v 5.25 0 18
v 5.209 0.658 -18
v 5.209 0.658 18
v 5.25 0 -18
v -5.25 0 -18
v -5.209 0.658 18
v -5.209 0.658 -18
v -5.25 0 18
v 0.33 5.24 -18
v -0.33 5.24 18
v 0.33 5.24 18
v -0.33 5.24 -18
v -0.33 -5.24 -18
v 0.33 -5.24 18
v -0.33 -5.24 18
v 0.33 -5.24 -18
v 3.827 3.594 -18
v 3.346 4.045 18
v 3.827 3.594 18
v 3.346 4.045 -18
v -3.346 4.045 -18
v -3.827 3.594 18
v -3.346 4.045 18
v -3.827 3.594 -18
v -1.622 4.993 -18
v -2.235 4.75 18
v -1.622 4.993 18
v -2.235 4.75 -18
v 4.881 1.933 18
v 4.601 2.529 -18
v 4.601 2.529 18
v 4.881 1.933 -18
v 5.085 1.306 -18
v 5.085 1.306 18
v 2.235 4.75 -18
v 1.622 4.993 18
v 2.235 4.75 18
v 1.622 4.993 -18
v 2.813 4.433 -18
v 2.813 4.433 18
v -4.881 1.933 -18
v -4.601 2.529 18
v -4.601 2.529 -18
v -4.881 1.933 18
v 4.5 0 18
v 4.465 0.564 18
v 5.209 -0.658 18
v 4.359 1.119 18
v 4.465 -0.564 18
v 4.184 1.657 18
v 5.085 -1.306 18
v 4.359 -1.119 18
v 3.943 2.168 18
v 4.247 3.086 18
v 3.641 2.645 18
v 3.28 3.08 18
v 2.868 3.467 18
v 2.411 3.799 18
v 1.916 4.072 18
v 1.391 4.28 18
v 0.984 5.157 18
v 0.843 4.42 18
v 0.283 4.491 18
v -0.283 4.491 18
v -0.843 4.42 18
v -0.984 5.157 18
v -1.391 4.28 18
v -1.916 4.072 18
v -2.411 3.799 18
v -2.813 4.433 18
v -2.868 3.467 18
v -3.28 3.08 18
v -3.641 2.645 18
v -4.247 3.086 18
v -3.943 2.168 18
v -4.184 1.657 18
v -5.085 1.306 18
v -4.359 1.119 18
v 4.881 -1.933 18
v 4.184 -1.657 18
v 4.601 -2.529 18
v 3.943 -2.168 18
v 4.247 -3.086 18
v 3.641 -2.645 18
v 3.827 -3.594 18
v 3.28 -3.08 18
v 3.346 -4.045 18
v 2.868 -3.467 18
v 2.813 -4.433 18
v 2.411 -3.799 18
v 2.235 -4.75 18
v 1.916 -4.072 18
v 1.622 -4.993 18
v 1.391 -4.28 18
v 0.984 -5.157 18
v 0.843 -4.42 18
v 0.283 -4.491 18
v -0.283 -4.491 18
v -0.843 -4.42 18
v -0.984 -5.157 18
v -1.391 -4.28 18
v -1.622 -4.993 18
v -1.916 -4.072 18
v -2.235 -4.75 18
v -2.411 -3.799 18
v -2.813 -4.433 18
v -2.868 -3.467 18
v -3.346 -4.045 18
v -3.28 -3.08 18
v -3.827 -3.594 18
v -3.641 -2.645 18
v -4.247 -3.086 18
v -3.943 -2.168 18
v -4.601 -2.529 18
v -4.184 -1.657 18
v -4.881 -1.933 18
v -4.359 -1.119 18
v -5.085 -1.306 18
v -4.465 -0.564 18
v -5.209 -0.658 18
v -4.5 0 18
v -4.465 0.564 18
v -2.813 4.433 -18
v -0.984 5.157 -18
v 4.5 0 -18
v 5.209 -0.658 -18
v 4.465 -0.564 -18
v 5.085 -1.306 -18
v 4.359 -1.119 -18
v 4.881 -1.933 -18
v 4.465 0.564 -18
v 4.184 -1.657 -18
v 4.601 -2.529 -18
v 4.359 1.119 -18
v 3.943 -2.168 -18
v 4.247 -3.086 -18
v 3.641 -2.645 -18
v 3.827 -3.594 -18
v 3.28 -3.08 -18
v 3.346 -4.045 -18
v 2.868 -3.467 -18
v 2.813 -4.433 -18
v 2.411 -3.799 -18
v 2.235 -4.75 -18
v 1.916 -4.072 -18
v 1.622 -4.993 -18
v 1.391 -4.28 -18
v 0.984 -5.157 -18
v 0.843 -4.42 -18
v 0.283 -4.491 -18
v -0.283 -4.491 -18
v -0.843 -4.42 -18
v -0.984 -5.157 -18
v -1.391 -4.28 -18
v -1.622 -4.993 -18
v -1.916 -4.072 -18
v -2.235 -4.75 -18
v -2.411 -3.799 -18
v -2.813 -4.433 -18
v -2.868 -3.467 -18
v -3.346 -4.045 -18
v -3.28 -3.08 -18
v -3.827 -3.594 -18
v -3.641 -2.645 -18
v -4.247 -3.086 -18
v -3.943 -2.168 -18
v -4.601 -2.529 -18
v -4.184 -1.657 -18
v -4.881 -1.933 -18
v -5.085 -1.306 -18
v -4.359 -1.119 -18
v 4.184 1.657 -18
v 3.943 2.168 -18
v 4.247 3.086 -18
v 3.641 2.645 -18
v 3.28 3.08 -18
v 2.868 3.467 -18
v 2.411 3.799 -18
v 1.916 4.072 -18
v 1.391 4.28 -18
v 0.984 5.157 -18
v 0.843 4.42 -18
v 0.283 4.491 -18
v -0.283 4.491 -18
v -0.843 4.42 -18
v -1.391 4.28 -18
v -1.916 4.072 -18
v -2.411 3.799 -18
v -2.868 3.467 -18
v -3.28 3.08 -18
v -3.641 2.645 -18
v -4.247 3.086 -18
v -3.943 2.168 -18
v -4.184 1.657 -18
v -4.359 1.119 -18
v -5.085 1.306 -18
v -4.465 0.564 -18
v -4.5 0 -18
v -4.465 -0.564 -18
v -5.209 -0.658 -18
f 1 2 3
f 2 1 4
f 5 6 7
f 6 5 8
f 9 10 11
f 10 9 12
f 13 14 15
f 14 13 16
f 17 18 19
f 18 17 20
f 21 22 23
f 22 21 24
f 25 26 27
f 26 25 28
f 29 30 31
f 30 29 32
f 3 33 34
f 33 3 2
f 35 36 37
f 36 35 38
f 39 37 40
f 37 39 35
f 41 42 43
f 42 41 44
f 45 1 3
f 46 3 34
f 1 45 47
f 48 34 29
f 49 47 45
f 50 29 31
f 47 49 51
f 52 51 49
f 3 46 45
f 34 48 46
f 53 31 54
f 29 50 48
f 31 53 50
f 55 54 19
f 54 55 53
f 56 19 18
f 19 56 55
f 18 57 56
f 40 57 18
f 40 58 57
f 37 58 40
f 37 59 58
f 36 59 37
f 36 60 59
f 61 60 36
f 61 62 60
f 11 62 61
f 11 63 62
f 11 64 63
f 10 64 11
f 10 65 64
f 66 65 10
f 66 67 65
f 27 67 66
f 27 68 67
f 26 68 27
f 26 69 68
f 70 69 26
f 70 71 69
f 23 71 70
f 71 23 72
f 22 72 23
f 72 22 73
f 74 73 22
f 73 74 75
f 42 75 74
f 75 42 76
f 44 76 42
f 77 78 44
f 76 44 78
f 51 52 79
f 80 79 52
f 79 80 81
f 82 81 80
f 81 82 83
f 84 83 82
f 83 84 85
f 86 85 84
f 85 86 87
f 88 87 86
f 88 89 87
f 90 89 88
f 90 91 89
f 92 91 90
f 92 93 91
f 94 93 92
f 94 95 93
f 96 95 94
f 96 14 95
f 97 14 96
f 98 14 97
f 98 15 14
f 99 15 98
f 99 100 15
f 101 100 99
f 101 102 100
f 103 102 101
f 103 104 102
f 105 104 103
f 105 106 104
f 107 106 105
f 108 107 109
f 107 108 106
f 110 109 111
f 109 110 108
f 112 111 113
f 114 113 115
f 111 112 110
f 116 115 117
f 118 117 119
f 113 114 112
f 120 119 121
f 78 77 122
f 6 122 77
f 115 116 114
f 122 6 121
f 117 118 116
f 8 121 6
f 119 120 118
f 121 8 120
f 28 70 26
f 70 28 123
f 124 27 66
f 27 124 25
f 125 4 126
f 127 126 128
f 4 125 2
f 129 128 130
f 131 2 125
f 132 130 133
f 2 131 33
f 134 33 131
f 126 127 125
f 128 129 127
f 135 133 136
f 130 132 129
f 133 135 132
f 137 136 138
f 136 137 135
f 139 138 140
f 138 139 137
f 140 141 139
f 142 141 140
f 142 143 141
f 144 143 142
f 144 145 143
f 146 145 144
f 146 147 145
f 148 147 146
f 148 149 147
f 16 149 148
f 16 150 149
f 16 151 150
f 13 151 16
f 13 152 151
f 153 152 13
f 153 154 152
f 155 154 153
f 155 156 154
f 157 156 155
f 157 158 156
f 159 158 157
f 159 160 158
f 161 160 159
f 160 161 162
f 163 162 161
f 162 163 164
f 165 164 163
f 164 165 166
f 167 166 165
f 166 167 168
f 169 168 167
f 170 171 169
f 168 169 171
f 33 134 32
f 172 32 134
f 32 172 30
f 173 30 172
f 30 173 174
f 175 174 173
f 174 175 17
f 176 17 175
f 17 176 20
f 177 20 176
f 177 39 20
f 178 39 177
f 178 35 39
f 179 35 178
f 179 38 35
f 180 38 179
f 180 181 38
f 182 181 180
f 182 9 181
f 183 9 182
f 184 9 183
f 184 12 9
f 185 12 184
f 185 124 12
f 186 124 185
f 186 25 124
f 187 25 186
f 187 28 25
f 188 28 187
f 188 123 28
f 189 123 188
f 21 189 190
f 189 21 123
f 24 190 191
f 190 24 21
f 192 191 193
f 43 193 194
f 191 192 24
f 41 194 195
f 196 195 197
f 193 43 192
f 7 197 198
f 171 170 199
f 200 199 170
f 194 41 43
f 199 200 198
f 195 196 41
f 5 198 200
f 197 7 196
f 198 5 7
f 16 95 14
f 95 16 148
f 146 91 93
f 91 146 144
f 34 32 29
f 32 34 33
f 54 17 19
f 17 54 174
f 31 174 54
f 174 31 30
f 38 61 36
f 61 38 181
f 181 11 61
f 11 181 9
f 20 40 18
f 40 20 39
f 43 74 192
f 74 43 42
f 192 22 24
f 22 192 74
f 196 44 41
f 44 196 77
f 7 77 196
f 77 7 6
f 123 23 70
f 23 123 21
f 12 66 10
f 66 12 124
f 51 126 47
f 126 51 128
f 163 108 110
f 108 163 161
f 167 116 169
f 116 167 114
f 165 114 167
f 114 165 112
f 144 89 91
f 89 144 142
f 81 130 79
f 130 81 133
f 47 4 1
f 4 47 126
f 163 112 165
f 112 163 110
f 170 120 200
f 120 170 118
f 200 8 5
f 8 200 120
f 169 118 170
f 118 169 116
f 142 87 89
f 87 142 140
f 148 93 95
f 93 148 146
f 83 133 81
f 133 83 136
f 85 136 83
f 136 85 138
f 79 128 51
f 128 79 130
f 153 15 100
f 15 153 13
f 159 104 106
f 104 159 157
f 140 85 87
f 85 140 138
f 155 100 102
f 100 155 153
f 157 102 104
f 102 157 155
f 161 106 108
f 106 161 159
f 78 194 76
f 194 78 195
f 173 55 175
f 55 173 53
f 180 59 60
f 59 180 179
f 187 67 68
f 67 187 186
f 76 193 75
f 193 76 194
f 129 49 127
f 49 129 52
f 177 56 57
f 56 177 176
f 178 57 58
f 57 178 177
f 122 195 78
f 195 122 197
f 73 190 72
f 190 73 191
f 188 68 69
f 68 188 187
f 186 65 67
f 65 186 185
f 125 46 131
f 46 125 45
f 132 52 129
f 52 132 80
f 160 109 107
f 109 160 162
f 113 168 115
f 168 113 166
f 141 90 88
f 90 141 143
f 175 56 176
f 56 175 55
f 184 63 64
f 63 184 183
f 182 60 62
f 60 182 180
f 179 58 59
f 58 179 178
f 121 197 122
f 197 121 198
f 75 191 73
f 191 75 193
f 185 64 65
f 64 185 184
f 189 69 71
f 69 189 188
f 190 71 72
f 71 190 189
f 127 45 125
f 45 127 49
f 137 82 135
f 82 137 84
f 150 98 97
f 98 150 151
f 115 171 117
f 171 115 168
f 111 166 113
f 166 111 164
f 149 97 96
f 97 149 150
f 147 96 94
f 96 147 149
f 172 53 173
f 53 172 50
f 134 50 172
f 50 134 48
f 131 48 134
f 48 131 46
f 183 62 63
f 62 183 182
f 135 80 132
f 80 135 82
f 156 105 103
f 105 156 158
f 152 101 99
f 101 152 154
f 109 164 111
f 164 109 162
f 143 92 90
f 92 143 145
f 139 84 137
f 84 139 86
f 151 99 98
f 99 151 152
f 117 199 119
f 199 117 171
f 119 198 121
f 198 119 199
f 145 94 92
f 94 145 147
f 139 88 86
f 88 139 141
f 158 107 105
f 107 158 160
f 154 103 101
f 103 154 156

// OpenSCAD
$fn = 50;


difference() {
	union() {
		translate(v = [0, 0, -18.0000000000]) {
			cylinder(h = 36, r = 5.2500000000);
		}
	}
	union() {
		translate(v = [0, 0, -100.0000000000]) {
			cylinder(h = 200, r = 4.5000000000);
		}
	}
}
